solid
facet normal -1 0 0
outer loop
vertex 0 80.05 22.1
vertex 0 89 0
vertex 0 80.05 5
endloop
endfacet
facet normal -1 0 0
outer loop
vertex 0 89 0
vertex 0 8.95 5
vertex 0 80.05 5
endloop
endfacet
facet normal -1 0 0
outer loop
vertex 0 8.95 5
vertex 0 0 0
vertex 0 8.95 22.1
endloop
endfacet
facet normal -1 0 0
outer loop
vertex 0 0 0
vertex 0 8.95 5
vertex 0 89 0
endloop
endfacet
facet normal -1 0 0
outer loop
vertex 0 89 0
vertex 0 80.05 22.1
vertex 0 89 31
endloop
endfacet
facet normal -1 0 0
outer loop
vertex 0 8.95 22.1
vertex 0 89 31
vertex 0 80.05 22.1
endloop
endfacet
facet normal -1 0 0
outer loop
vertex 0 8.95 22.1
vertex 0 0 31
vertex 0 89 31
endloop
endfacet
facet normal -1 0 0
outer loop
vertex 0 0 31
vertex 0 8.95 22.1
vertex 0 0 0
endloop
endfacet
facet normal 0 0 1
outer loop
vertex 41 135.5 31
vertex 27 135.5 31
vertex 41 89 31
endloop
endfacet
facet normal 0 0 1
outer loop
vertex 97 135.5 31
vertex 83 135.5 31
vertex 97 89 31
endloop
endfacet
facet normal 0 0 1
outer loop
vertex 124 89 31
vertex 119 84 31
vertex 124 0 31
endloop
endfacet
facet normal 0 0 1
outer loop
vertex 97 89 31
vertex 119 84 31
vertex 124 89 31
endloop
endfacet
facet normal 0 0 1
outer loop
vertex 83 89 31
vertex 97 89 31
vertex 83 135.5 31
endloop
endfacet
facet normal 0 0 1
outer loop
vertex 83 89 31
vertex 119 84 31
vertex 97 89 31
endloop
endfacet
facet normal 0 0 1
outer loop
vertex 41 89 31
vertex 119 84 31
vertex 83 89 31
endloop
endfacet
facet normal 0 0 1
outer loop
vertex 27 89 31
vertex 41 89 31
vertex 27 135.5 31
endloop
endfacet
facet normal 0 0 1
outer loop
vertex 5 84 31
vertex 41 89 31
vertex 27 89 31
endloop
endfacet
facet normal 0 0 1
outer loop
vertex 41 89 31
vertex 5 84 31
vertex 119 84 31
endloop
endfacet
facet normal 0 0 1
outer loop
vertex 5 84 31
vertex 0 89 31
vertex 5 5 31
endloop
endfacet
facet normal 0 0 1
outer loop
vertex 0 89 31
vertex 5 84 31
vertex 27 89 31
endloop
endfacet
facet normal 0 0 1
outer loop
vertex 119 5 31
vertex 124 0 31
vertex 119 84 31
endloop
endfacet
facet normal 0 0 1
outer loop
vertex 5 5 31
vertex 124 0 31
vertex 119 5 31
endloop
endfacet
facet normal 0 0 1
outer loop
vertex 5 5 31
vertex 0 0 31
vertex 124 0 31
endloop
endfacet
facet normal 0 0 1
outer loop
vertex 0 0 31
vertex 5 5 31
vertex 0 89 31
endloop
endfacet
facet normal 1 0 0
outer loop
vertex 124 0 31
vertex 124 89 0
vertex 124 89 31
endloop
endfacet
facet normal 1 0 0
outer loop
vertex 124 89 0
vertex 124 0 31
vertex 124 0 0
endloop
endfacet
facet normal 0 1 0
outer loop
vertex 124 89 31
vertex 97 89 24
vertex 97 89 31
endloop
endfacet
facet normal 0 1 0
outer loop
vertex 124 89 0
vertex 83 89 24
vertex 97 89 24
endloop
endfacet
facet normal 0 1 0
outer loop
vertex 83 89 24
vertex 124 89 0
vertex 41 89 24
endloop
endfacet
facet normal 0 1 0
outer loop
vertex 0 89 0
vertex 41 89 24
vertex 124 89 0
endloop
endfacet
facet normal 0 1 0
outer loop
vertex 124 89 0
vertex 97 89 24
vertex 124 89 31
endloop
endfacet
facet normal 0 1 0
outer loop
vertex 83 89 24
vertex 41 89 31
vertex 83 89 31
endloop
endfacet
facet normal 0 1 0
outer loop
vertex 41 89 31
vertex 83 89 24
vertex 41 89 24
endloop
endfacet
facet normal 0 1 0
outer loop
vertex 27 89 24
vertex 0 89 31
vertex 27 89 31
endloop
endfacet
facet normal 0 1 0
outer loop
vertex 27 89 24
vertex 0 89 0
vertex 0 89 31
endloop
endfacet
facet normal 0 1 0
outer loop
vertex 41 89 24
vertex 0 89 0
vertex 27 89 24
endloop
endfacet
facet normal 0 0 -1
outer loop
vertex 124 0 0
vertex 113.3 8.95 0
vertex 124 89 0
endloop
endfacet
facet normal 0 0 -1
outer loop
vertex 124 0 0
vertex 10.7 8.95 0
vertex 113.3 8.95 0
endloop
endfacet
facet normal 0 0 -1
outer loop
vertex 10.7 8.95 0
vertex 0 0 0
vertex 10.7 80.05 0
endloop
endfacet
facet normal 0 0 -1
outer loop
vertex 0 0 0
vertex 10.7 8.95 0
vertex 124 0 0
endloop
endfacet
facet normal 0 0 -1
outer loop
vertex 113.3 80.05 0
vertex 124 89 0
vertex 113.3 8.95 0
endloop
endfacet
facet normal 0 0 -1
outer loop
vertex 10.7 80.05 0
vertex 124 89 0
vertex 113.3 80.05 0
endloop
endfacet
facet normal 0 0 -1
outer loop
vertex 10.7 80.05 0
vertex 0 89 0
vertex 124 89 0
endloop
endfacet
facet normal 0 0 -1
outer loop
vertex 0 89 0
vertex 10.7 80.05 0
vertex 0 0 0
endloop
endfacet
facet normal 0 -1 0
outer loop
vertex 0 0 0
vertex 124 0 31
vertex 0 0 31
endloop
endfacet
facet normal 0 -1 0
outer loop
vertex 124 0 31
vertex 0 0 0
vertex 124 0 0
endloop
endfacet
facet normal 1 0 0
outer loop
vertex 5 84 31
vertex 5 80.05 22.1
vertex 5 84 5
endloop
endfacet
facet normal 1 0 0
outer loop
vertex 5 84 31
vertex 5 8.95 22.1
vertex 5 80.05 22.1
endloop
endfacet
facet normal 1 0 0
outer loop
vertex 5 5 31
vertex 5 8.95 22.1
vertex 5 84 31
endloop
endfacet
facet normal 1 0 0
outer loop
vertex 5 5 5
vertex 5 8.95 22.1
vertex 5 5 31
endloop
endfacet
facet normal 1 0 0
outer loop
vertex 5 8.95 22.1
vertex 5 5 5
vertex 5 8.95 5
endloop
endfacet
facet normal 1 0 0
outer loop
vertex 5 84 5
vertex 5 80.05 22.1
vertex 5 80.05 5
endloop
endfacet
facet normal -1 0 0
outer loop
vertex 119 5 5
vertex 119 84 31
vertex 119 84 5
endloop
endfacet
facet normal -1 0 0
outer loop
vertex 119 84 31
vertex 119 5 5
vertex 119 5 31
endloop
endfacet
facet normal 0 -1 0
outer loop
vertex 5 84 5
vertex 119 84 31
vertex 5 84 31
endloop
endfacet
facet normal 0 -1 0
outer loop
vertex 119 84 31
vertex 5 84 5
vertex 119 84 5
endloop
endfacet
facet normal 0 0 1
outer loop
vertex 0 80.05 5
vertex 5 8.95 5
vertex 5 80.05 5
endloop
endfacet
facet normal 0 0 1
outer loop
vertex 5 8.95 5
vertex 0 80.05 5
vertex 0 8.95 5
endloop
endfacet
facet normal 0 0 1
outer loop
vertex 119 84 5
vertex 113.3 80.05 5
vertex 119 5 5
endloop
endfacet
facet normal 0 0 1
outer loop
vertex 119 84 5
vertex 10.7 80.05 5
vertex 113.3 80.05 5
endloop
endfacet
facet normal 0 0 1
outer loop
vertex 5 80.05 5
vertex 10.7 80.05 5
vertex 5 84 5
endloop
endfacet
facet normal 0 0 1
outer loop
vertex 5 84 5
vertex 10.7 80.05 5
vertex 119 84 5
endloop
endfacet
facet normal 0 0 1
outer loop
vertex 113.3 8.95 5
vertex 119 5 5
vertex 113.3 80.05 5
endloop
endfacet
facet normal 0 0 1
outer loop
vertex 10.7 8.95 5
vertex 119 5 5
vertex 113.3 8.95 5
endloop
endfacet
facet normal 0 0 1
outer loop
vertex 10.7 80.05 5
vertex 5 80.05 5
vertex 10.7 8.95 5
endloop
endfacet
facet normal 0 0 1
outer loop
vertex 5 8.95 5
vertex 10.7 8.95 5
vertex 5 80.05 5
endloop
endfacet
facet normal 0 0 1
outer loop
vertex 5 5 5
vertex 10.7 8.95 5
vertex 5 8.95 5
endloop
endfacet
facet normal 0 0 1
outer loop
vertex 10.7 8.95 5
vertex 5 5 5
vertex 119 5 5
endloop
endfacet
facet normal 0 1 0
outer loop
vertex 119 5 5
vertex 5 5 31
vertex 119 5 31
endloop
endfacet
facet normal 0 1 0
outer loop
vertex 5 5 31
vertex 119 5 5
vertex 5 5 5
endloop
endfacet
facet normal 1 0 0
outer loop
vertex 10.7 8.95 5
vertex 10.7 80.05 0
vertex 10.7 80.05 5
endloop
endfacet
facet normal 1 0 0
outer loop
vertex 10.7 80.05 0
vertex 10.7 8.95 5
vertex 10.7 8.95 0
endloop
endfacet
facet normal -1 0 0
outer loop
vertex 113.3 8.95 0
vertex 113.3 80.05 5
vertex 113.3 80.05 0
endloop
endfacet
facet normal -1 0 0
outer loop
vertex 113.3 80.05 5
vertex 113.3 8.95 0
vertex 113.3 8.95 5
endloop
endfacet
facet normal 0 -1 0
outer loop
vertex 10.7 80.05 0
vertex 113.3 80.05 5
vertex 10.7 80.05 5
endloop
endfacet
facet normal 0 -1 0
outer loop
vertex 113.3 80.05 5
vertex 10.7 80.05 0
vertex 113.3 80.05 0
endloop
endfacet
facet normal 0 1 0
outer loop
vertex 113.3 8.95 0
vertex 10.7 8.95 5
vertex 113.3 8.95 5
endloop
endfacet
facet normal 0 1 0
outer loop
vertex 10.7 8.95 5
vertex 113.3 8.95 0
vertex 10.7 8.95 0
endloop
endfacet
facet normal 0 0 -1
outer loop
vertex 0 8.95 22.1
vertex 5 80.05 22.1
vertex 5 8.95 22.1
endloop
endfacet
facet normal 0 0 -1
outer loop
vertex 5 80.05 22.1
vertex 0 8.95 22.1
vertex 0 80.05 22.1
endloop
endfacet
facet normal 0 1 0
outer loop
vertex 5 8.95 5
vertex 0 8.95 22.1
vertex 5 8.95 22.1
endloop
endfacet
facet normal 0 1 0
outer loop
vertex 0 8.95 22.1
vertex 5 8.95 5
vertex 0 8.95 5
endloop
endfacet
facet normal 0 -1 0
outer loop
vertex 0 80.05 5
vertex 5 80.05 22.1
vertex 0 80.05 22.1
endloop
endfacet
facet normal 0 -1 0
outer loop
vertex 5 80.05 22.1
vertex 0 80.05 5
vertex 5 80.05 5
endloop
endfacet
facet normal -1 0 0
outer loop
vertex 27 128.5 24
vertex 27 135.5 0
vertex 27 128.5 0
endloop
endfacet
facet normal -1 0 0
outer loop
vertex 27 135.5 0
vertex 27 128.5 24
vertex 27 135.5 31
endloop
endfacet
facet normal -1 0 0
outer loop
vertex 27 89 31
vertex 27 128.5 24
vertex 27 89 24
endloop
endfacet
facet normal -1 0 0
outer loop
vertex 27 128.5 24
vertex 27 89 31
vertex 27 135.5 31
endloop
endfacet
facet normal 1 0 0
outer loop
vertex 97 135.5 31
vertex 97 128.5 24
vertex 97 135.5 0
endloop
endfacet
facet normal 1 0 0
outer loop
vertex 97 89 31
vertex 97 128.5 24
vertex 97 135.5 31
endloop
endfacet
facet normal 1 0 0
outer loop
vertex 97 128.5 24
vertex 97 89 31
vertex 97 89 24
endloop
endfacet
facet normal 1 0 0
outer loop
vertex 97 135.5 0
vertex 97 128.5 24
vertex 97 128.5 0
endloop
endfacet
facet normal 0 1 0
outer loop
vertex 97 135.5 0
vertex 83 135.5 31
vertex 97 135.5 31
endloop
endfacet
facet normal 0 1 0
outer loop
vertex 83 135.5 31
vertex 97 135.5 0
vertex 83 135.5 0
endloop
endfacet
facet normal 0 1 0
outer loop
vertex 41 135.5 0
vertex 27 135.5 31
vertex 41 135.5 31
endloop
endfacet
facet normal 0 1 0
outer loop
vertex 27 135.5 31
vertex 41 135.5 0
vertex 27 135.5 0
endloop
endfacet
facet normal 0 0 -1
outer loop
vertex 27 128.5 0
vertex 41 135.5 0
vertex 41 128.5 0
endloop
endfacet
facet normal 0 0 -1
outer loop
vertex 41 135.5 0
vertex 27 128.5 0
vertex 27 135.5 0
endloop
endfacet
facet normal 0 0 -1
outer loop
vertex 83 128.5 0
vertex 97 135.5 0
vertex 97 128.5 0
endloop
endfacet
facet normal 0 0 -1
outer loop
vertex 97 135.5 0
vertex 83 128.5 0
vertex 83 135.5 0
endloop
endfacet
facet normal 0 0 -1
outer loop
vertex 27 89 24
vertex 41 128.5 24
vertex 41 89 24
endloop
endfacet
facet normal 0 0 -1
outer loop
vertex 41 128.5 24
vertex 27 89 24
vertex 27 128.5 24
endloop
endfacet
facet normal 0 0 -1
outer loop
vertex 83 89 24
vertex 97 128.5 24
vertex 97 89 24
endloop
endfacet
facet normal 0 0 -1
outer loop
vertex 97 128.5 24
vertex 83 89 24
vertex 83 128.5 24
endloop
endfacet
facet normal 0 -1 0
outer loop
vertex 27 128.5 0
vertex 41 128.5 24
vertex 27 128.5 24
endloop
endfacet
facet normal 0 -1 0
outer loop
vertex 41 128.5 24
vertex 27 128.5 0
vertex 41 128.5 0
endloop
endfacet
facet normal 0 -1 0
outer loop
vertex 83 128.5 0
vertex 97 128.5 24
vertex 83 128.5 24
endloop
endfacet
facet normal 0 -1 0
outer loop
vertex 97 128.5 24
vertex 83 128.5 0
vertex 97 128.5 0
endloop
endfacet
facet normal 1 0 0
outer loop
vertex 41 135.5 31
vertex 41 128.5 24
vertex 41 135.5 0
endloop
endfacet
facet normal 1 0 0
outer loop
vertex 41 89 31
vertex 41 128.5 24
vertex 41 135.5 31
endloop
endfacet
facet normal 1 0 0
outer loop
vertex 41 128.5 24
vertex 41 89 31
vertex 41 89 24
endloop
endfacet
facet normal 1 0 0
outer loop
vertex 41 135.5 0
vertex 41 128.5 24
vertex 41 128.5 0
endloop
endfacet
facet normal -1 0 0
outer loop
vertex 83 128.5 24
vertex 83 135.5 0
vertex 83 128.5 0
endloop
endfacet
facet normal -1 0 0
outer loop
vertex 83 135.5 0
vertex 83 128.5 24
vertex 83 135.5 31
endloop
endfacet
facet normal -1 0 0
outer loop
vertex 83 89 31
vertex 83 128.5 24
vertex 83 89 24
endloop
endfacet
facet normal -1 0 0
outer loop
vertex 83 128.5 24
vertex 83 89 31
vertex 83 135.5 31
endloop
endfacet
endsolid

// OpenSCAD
module hdd_holder(
    hdd_velikost    = [ 113, 78, 19 ],
    tloustka        = 5,
    sila            = 7,
    zaves_sirka     = 39,
    zaves_delka     = 37,
    zaves_max       = 70,
    zaves_vyrez     = 0.6,
    spodni_vyrez    = 0.9,
    bocni_vyrez     = 0.9,
) {
    // posun spodniho vyrezu -- vycentrovani
    posunSpodek = tloustka*[1,1,0] + (1-spodni_vyrez)/2*[ hdd_velikost[0], hdd_velikost[1], 0 ];
    // posun bocniho vyrezu -- vycentrovani
    posunBok    = tloustka*[0,1,1] + (1-bocni_vyrez)/2*[ 0, hdd_velikost[1], 0 ];

    ramecekVelikost = hdd_velikost + tloustka*[2,2,1] + sila*[0,0,1];
    // ramecek -------------------------------------------------------
    difference() {
        // ramecek
        cube( ramecekVelikost );
        // dira na hdd
        translate( tloustka*[1,1,1] )
            cube( hdd_velikost + [0,0,tloustka+sila+1]);
        // spodni vyrez
        translate( posunSpodek - [0,0,1] )
            cube( spodni_vyrez*hdd_velikost + tloustka*[0,0,2] );
        // bocni vyrez
        translate( posunBok - [1,0,0] )
            cube( bocni_vyrez*hdd_velikost + tloustka*[2,0,0]);
    }

    // zaves ---------------------------------------------------------
    velikostZaves   = [ zaves_max, zaves_sirka+sila, ramecekVelikost[2] ]; 
    posunZaves      = (ramecekVelikost[0]-zaves_max)/2*[1,0,0] + ramecekVelikost[1]*[0,1,0];

    velikostVyrez   = [ zaves_vyrez*velikostZaves[0], velikostZaves[1], velikostZaves[2] ];
    posunVyrez      = (1-zaves_vyrez)*velikostZaves[0]/2*[1,0,0];

    translate( posunZaves )
        difference() {
            // okraj zavesu
            cube( velikostZaves );
            // vyriznuti zavesu
            translate( -[1,1,1] )
                cube( velikostZaves - sila*[0,1,1] + [2,1,1] );
            // vyrez prostredku zavesu
            translate( posunVyrez - [0,1,1] )
                cube( velikostVyrez + [0,2,2] );
        }
}

module hdd( 
    hdd_velikost    = [ 112, 77.5, 19 ], 
    zaobleni        = 8
) {
    rozestup_x = hdd_velikost[0] - 2*zaobleni;
    rozestup_y = hdd_velikost[1] - 2*zaobleni;

    translate([zaobleni,zaobleni,0])
        hull() {
            for ( i=[0,1], j=[0,1] ) 
                translate([ i*rozestup_x, j*rozestup_y, 0 ])
                    cylinder( r=zaobleni, h=hdd_velikost[2] );
        }
}

tloustka    = 5;

hdd_holder( tloustka = tloustka, hdd_velikost = [ 114, 79, 19 ], zaves_sirka = 39.5 );

translate(tloustka*[1,1,1])
    %hdd();
